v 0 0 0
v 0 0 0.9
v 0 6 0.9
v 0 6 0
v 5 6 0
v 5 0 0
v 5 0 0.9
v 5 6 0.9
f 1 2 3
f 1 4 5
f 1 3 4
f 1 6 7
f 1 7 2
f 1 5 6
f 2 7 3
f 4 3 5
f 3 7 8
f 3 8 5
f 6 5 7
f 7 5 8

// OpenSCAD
/* Warning, this is a very basic generator with a lot of approximation 
input data : [PDFN, ASX, 5x6x0.9mm, 8, , B, C04-00188B]
generated by com.zoubworld.electronics.cad.model3d.Basic
Date : Sun Feb 15 10:50:48 CET 2026
*/

//body
color("black")
translate([0,0,0])
cube([5.0,6.0,0.9], center=false);
